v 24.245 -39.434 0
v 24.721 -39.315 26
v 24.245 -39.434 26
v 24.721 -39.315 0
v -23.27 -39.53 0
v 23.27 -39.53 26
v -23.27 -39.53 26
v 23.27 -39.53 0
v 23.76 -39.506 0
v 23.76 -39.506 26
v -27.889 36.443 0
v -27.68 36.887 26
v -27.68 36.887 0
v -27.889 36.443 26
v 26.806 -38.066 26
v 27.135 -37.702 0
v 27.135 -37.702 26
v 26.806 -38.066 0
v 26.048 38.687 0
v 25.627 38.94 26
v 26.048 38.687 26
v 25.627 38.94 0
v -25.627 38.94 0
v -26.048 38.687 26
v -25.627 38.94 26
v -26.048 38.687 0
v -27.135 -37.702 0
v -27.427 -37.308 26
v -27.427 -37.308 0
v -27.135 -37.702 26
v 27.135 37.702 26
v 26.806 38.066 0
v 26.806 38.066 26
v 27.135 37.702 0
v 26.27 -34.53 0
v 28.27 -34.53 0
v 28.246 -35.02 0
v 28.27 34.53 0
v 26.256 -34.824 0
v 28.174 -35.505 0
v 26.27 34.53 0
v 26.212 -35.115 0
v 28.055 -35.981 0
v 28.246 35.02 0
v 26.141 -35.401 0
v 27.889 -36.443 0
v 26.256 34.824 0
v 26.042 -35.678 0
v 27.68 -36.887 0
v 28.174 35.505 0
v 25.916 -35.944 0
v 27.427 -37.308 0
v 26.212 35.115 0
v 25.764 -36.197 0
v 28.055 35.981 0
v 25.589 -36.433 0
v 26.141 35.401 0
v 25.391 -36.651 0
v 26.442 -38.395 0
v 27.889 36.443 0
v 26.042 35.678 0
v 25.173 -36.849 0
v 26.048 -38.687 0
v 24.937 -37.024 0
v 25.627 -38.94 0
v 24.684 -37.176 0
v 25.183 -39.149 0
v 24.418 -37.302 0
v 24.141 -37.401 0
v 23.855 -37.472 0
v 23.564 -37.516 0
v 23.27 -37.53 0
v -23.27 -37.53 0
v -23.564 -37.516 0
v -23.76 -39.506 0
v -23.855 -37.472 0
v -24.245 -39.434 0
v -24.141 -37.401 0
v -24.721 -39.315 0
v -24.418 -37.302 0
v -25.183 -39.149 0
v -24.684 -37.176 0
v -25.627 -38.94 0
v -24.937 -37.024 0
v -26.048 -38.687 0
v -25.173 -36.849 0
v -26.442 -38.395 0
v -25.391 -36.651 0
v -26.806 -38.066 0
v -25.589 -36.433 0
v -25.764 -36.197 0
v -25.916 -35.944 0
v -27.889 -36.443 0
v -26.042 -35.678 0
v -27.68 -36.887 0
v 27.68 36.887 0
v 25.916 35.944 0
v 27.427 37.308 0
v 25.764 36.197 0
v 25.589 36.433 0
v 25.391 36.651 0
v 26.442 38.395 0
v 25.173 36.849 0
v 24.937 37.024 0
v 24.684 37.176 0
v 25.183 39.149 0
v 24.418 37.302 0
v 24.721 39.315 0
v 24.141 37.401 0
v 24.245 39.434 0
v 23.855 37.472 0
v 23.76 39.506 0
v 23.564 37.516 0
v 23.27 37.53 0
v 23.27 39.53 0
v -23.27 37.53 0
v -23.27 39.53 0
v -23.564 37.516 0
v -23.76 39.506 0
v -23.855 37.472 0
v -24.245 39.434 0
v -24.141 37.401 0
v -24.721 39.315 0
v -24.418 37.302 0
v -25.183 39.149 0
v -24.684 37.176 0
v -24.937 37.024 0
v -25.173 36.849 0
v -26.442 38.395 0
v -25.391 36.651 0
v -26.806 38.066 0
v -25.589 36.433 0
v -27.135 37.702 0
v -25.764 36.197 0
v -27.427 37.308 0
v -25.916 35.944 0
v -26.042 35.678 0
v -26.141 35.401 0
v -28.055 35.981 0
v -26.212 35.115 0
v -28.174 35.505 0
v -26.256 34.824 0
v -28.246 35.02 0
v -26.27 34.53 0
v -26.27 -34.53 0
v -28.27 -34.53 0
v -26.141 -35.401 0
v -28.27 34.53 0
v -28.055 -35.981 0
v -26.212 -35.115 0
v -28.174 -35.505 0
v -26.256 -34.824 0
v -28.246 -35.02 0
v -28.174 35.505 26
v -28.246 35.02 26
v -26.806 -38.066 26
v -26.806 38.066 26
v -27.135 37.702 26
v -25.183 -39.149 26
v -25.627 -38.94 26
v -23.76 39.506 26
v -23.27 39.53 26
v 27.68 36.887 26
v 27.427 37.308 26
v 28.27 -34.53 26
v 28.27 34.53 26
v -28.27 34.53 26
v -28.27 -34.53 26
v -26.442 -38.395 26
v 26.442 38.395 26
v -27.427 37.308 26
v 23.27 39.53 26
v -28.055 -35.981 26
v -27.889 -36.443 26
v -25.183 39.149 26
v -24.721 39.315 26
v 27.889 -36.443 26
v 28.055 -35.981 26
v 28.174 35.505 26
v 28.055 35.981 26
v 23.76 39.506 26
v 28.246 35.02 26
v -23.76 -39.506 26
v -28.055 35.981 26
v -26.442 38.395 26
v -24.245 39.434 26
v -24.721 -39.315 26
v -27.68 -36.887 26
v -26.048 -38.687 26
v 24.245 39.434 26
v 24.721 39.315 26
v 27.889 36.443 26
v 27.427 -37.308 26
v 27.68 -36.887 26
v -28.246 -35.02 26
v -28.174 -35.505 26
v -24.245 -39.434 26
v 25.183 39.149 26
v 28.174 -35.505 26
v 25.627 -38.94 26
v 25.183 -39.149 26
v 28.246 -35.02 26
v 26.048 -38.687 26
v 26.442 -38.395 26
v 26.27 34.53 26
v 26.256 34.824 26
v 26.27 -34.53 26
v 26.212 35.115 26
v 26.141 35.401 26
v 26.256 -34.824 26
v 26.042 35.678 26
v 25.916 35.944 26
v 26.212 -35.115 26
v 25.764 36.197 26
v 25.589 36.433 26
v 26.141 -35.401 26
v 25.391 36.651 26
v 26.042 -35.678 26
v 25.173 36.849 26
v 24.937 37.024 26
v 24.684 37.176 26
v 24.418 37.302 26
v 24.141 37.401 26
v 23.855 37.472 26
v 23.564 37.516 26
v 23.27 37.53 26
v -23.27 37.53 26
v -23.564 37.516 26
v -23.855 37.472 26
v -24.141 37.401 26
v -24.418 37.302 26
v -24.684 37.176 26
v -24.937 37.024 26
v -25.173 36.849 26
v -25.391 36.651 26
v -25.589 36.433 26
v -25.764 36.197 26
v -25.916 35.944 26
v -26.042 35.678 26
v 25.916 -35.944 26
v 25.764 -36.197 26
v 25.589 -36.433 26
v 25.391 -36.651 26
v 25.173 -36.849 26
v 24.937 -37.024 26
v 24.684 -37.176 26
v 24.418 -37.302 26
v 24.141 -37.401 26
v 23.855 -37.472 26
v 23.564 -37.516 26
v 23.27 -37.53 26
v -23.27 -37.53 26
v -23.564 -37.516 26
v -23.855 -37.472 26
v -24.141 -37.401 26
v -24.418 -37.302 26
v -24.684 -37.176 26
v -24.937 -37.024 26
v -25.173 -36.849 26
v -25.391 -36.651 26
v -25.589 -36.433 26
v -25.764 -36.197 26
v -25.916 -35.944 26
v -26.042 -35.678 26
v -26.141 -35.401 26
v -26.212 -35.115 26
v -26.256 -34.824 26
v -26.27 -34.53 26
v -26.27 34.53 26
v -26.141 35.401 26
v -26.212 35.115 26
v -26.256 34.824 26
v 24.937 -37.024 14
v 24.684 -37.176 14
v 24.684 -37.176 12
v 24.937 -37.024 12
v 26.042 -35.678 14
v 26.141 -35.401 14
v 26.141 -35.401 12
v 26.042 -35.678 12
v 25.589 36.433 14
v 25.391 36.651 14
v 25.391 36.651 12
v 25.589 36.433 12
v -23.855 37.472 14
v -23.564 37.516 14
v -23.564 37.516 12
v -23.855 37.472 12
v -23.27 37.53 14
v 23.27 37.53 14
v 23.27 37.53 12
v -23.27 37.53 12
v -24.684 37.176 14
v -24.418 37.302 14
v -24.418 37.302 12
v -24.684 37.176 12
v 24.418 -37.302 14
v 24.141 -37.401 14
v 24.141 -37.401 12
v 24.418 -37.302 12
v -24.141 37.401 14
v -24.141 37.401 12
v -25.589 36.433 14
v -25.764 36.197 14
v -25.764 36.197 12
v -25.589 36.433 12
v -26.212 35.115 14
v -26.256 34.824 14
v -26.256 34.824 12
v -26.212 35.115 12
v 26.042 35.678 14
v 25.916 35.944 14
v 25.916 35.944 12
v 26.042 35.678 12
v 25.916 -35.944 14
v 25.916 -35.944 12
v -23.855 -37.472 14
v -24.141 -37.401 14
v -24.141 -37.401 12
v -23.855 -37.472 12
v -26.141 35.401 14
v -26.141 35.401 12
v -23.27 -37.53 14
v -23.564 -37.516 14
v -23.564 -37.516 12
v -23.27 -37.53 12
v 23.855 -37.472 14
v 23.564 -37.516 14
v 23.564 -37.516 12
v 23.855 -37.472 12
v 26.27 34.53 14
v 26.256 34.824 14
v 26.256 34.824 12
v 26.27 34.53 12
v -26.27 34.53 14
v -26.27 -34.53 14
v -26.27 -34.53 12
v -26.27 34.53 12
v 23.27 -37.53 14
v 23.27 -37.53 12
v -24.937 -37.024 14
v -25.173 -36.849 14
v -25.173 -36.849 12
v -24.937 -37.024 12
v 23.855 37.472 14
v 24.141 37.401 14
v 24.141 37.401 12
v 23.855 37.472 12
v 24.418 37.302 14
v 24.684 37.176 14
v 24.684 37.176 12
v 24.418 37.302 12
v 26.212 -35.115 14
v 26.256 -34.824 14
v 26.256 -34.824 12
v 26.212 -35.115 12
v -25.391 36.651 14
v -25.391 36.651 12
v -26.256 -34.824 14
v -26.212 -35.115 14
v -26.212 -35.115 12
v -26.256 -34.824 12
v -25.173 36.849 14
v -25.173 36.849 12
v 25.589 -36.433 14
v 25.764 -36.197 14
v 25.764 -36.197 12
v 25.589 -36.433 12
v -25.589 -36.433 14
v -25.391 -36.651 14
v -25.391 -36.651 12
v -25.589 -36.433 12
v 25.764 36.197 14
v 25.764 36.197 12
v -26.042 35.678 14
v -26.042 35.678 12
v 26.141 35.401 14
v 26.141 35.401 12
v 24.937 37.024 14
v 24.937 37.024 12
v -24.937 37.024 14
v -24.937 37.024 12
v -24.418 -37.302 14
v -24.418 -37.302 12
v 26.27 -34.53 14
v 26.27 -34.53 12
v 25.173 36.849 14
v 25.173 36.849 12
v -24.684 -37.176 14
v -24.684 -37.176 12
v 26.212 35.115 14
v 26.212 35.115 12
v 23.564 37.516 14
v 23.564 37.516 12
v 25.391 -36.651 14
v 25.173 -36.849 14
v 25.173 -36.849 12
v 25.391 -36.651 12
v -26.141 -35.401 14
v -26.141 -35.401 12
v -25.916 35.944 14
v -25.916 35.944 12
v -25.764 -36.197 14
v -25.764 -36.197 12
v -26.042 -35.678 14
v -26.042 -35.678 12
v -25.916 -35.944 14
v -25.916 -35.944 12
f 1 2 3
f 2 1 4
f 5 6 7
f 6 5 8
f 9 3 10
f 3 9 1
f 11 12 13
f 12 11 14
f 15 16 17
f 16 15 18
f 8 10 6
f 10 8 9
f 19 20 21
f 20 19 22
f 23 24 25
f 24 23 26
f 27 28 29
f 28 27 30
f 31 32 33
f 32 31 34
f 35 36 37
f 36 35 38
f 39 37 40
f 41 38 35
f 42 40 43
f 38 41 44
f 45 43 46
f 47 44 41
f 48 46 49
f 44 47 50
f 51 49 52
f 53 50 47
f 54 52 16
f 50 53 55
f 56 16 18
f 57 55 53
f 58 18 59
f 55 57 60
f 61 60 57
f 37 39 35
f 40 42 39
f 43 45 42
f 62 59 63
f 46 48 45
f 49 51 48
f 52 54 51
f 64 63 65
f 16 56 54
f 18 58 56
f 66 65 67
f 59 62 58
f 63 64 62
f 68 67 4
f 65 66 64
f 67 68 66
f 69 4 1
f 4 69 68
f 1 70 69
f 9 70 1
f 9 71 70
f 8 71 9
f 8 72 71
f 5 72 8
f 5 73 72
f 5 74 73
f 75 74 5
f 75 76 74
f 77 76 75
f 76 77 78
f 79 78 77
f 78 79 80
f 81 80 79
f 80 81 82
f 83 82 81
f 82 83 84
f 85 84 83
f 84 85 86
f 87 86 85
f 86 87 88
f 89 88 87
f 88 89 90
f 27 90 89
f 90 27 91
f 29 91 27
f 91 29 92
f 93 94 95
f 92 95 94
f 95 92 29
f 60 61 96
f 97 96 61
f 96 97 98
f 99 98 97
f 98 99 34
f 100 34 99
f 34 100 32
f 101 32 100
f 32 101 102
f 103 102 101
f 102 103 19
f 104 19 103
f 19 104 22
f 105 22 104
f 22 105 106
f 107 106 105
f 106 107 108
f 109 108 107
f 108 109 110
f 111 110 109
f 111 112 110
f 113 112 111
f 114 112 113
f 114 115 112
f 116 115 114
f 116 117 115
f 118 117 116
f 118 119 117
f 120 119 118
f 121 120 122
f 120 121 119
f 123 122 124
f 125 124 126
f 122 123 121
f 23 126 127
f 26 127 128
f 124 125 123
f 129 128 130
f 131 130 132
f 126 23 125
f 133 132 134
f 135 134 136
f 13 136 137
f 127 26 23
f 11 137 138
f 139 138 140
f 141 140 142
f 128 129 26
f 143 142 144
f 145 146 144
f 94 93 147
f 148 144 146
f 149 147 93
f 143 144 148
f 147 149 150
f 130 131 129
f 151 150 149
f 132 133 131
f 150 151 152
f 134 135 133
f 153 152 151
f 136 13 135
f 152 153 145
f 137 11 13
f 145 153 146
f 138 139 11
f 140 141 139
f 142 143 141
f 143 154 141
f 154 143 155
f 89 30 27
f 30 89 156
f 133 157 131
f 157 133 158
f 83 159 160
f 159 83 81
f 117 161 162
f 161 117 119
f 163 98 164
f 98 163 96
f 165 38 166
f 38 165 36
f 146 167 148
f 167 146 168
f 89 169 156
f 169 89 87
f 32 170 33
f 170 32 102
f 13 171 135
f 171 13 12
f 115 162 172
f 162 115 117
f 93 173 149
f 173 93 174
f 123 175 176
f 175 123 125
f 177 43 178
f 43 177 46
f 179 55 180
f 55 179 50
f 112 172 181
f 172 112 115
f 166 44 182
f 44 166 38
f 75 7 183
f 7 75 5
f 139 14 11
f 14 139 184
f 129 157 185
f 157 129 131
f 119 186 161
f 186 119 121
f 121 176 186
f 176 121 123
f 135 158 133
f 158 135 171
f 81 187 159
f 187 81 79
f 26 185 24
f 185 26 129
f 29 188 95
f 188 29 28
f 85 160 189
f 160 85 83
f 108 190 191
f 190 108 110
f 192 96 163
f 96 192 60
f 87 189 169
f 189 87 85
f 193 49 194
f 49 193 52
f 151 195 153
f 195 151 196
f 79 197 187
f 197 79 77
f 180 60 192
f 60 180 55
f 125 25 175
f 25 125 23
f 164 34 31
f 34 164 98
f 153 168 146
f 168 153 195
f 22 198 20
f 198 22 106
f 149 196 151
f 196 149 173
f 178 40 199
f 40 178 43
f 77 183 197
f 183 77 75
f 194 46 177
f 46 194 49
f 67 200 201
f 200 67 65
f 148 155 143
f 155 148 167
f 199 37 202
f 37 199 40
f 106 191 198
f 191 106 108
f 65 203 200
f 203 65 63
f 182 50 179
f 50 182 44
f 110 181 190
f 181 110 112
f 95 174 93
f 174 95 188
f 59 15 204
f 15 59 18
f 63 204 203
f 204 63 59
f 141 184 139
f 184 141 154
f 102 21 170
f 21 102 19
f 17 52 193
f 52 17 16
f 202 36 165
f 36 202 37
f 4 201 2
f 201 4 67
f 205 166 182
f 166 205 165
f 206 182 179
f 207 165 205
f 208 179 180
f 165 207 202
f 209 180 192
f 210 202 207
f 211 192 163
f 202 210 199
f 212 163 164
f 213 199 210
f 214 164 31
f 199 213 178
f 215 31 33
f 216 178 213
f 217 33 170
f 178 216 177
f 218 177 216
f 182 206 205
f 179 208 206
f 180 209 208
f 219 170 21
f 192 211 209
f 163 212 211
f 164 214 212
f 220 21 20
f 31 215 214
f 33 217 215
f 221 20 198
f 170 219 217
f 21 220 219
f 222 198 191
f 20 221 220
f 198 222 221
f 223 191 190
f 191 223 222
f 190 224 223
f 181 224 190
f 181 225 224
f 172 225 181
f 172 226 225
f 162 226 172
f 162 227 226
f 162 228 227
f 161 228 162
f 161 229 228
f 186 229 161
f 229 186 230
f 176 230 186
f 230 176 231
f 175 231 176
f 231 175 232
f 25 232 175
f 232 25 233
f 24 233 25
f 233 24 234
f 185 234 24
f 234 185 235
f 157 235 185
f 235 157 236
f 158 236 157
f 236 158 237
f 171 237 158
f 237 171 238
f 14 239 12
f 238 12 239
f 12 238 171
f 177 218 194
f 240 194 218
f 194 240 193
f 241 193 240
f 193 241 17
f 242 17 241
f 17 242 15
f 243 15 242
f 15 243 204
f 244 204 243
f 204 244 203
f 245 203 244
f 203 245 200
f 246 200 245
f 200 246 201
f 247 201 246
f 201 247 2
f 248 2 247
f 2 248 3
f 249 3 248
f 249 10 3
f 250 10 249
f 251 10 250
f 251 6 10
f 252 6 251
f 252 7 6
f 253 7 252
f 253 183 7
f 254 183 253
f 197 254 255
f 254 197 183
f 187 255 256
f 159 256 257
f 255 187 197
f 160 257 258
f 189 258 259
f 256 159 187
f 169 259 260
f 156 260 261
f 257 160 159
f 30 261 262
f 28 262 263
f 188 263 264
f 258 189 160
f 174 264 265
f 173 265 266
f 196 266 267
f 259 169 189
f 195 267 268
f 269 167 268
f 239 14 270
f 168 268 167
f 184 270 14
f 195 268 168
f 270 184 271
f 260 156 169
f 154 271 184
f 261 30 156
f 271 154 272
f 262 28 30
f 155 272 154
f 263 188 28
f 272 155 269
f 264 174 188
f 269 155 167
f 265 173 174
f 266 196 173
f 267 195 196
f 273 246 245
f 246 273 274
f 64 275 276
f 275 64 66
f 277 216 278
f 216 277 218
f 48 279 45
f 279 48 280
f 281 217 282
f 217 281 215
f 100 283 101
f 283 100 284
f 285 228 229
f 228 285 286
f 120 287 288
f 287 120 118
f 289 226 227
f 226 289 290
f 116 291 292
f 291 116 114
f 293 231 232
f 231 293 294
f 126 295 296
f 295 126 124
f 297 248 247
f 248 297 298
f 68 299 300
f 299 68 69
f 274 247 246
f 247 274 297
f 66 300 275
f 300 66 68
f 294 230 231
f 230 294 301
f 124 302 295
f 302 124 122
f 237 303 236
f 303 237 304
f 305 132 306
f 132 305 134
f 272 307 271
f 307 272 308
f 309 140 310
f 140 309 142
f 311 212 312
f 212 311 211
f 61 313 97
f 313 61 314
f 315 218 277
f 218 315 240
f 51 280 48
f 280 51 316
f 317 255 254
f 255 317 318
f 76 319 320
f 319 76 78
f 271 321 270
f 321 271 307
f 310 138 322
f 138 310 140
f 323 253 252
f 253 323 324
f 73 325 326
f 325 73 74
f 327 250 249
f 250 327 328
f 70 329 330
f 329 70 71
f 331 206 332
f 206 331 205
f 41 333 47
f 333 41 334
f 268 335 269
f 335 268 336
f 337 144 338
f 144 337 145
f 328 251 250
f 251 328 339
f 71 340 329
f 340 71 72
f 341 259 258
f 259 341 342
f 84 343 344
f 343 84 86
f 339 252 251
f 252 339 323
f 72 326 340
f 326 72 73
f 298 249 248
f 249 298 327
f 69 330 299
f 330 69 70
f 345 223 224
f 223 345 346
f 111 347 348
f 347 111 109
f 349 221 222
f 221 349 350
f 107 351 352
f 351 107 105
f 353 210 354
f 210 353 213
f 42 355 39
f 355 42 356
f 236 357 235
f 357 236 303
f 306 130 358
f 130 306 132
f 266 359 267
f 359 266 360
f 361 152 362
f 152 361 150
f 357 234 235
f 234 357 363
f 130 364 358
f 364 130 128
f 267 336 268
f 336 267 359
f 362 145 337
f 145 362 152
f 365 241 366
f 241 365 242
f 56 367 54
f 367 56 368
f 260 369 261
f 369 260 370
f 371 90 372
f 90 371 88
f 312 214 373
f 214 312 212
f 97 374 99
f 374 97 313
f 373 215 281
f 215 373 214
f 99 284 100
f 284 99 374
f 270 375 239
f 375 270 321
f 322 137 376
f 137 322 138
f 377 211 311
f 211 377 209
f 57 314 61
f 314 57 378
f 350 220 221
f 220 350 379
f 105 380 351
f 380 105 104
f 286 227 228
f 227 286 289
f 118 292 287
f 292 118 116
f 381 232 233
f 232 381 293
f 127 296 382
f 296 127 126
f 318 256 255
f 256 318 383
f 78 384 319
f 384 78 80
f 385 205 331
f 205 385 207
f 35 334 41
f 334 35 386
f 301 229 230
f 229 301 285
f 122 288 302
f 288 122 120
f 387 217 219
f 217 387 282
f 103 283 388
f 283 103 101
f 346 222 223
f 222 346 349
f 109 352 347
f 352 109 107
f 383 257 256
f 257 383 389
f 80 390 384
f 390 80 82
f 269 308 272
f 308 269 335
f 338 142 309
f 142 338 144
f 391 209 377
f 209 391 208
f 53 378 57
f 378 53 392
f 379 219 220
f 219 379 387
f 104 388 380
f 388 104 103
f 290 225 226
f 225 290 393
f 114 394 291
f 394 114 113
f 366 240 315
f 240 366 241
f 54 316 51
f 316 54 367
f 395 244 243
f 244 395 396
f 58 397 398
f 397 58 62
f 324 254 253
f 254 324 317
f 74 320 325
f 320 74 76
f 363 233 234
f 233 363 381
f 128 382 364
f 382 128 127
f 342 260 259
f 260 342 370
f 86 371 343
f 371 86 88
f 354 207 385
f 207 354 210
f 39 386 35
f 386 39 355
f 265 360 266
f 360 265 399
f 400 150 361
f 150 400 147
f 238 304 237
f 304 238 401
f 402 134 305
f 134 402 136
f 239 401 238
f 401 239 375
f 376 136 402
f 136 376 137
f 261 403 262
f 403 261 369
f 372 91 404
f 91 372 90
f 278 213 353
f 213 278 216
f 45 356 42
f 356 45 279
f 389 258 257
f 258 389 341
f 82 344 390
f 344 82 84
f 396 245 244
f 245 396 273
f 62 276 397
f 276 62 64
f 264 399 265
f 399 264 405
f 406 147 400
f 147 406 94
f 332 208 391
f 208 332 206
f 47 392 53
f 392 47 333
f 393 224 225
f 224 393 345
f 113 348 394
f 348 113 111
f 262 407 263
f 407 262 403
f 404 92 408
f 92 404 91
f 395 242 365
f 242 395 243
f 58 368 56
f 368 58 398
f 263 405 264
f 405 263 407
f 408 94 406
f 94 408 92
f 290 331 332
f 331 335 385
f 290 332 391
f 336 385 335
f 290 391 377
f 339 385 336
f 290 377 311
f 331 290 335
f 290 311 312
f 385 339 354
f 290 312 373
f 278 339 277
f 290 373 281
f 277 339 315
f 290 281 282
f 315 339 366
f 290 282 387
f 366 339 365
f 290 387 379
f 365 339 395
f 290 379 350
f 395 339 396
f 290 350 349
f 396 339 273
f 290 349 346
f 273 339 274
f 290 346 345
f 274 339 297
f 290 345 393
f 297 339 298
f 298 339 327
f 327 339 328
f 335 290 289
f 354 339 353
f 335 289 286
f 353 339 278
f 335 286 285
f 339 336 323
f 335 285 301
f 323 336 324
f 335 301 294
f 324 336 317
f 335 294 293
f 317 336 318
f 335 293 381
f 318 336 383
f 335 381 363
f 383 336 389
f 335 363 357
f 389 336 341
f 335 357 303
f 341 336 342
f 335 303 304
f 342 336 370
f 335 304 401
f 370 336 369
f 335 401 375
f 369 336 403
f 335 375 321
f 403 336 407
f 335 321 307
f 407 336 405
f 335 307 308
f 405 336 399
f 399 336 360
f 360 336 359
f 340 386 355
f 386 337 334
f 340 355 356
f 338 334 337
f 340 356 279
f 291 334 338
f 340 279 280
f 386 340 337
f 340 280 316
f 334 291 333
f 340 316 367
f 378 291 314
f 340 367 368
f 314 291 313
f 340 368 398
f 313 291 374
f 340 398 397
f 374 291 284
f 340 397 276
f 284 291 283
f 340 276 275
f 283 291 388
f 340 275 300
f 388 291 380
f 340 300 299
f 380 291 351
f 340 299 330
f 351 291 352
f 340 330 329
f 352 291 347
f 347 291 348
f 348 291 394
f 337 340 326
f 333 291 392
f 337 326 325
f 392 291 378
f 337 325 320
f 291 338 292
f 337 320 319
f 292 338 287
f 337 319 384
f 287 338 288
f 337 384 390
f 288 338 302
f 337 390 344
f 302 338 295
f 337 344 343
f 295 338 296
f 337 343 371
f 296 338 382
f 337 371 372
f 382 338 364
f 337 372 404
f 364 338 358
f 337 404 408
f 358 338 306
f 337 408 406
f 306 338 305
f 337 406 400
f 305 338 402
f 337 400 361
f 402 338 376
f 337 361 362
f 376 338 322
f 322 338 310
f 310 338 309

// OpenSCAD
// Air Quality Monitor rear shell - Step 5 (OpenSCAD)
// Units: mm
$fn = 64;

// Shared outer dimensions
// Display module dimensions (from Waveshare 2D diagram)
tp_w = 50.54;
tp_h = 73.06;
tp_corner_rad = 2.0;

// Shell parameters
wall_thk = 2.0;
bezel_margin = 3.0;
front_shell_w = tp_w + 2 * bezel_margin;
front_shell_h = tp_h + 2 * bezel_margin;
rear_shell_d = 26.0;        // Rear shell depth (tunable)
rear_shell_rad = tp_corner_rad + bezel_margin;

// Sensor chamber partition
front_chamber_d = 12.0;     // Depth from front opening to divider front face
divider_thk = 2.0;

define_inner_w = front_shell_w - 2 * wall_thk;

define_inner_h = front_shell_h - 2 * wall_thk;

define_inner_r = max(rear_shell_rad - wall_thk, 0.6);

module rounded_rect(w, h, r) {
  offset(r = r) square([w - 2 * r, h - 2 * r], center = true);
}

module rear_shell() {
  inner_w = define_inner_w;
  inner_h = define_inner_h;
  inner_r = define_inner_r;
  divider_center_z = front_chamber_d + divider_thk / 2;

  union() {
    difference() {
      // Outer body (open front/back)
      linear_extrude(height = rear_shell_d)
        rounded_rect(front_shell_w, front_shell_h, rear_shell_rad);

      // Inner cavity
      translate([0, 0, -0.1])
        linear_extrude(height = rear_shell_d + 0.2)
          rounded_rect(inner_w, inner_h, inner_r);
    }

    // Divider wall to isolate chambers (front/back)
    translate([0, 0, divider_center_z])
      cube([inner_w, inner_h, divider_thk], center = true);
  }
}

rear_shell();
